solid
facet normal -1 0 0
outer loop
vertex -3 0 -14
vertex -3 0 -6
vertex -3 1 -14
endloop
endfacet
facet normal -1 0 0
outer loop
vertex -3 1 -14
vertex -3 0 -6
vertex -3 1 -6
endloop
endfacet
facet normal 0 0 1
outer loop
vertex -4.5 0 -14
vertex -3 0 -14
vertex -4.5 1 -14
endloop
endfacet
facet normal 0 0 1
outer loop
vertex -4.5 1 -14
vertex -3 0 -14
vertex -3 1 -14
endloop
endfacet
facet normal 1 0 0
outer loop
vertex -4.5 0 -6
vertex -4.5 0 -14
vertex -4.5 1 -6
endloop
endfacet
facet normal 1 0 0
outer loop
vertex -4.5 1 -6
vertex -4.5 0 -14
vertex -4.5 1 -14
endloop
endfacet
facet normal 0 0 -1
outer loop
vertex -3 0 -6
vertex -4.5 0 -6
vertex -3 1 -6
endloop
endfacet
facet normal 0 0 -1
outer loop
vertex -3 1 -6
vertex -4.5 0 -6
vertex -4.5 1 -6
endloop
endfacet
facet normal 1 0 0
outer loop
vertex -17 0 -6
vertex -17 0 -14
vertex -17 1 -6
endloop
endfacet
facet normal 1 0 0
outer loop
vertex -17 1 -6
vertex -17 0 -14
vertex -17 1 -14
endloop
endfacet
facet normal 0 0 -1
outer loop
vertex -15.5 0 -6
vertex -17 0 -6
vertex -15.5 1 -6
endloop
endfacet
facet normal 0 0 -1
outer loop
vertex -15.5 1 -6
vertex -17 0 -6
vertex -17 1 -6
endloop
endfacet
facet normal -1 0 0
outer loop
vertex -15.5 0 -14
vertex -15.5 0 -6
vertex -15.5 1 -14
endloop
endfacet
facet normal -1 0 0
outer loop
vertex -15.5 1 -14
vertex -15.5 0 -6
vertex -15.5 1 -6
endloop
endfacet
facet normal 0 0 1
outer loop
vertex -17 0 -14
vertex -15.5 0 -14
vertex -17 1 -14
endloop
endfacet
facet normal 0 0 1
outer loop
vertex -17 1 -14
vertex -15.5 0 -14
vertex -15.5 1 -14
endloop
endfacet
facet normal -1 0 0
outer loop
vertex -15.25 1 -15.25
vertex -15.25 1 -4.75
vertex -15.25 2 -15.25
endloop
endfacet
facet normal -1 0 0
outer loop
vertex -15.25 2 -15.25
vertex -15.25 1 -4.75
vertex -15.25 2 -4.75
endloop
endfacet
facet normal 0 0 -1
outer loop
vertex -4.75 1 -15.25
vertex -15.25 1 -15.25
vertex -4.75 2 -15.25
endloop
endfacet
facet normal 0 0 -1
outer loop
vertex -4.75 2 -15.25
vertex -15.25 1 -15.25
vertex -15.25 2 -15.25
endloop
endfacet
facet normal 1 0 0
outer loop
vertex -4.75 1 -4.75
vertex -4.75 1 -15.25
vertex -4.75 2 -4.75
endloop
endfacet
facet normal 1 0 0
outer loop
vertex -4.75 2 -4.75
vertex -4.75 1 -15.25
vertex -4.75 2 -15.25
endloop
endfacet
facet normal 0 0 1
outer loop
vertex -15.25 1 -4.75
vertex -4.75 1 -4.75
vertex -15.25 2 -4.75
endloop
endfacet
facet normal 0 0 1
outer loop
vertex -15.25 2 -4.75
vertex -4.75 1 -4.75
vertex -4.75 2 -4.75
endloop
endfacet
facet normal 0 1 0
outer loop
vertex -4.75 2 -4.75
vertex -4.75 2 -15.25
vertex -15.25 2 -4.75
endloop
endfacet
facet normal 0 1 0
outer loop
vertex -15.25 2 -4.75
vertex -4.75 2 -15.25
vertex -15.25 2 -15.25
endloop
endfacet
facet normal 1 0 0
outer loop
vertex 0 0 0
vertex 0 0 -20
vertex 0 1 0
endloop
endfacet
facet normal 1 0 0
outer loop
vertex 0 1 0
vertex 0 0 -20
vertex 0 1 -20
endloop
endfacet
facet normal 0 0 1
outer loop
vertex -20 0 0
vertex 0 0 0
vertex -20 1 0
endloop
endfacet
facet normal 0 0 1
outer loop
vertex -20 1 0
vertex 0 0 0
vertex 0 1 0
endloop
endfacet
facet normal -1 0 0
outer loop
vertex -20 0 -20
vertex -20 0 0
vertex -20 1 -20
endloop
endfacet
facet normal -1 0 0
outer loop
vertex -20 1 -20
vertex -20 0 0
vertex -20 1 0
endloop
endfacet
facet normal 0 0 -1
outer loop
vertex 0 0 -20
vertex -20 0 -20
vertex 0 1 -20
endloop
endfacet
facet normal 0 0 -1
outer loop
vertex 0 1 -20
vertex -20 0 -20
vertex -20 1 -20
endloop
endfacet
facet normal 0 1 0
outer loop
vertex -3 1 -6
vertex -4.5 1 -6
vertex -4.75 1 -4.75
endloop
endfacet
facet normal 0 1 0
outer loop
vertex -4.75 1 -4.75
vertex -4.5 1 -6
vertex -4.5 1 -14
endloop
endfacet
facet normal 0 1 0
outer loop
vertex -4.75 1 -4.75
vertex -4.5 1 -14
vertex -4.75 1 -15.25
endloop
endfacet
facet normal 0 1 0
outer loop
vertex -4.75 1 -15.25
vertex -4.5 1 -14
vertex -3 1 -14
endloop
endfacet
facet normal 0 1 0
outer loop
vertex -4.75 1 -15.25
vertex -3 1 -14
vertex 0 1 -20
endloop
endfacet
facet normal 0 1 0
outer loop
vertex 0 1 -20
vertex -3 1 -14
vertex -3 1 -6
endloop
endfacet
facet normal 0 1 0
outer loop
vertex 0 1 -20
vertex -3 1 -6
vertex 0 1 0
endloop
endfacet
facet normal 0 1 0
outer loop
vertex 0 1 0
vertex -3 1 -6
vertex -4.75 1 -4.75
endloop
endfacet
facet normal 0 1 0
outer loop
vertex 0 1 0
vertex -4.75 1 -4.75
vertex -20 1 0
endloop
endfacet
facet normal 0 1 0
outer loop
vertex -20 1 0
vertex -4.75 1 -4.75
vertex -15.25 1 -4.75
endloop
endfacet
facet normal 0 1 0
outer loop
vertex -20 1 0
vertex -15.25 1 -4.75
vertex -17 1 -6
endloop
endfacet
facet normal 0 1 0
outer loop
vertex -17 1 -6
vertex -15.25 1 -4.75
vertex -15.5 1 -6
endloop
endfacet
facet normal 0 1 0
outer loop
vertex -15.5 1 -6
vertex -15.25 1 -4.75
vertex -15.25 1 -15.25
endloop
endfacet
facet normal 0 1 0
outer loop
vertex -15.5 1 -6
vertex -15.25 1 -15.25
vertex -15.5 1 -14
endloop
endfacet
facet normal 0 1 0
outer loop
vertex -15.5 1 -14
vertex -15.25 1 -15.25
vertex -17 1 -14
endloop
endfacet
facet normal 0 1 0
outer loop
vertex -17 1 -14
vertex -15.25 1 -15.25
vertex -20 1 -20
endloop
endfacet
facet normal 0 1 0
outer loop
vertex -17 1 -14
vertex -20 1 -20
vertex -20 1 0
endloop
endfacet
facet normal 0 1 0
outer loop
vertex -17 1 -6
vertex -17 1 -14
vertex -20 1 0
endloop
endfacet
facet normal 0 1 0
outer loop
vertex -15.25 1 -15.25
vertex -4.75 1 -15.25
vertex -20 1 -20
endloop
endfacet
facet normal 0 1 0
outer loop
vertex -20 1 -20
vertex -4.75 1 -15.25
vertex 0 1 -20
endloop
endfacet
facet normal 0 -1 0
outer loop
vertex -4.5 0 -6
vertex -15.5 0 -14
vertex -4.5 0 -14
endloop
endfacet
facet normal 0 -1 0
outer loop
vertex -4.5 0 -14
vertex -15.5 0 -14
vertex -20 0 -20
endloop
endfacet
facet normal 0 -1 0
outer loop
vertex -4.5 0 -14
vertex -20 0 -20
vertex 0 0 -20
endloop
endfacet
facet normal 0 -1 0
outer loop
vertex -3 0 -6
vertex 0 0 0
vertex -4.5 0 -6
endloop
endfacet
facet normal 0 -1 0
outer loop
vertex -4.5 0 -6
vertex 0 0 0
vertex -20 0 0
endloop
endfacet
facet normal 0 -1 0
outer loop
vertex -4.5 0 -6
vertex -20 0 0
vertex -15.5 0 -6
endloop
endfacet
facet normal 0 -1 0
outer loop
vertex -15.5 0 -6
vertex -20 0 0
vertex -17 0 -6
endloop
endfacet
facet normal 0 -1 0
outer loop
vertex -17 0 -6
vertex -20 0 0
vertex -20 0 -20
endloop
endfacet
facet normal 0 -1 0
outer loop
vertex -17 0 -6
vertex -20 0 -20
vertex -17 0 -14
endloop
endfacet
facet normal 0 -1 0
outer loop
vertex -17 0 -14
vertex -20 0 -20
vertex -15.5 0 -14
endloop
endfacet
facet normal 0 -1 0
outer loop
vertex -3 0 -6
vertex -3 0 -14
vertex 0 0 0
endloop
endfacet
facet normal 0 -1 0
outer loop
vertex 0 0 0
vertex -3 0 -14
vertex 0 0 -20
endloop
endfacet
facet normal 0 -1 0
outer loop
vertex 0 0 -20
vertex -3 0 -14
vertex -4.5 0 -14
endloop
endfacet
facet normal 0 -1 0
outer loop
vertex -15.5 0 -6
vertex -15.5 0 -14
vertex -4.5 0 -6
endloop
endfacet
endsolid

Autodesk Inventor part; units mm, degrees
ref_plane "YZ Plane" through (0, 0, 0) normal (1, 0, 0) x (0, 1, 0)
ref_plane "XZ Plane" through (0, 0, 0) normal (0, 1, 0) x (-1, 0, 0)
ref_plane "XY Plane" through (0, 0, 0) normal (0, 0, 1) x (1, 0, 0)
sketch "Sketch1" plane through (0, 0, 0) normal (0, 1, 0) x (-1, 0, 0)
  line L0 (0, 0) -> (20, 0)
  line L1 (20, 0) -> (20, -20)
  line L2 (20, -20) -> (0, -20)
  line L3 (0, -20) -> (0, 0)
  dimension "d0" = 20
  dimension "d1" = 20
extrude "Extrusion1" add sketch "Sketch1" along normal blind 1
sketch "Sketch2" plane through (0, 1, 0) normal (0, 1, 0) x (1, 0, 0)
  line L0 (-15.5, 4.5) -> (-4.5, 4.5) construction
  line L1 (-4.5, 4.5) -> (-4.5, 15.5) construction
  line L2 (-4.5, 15.5) -> (-15.5, 15.5) construction
  line L3 (-15.5, 15.5) -> (-15.5, 4.5) construction
  line L4 (0, 0) -> (0, 20) projected
  line L5 (0, 20) -> (-20, 20) projected
  line L6 (-15.25, 15.25) -> (-4.75, 15.25)
  line L7 (-4.75, 15.25) -> (-4.75, 4.75)
  line L8 (-4.75, 4.75) -> (-15.25, 4.75)
  line L9 (-15.25, 4.75) -> (-15.25, 15.25)
  dimension "d4" = 11
  dimension "d5" = 11
  dimension "d6" = 4.5
  dimension "d7" = 4.5
  dimension "d20" = 0.25
extrude "Extrusion2" add sketch "Sketch2" along normal blind 1
sketch "Sketch3" plane through (0, 1, 0) normal (0, 1, 0) x (1, 0, 0)
  line L0 (-4.5, 14) -> (-3, 14)
  line L1 (-3, 14) -> (-3, 6)
  line L2 (-3, 6) -> (-4.5, 6)
  line L3 (-4.5, 6) -> (-4.5, 14)
  line L4 (-4.5, 4.5) -> (-4.5, 15.5) projected
  line L5 (-4.5, 15.5) -> (-15.5, 15.5) projected
  line L6 (-15.5, 14) -> (-17, 14)
  line L7 (-17, 14) -> (-17, 6)
  line L8 (-17, 6) -> (-15.5, 6)
  line L9 (-15.5, 6) -> (-15.5, 14)
  line L10 (-15.5, 15.5) -> (-15.5, 4.5) projected
  line L11 (-15.5, 4.5) -> (-4.5, 4.5) projected
  point P0 (0, 0)
  dimension "d10" = 8
  dimension "d11" = 1.5
  dimension "d12" = 0
  dimension "d13" = 1.5
  dimension "d14" = 8
  dimension "d15" = 1.5
  dimension "d16" = 0
  dimension "d17" = 1.5
extrude "Extrusion3" cut sketch "Sketch3" against normal through all contours L0 L1 L2 L3 | L9 L8 L7 L6
properties part number "Test_Button_Backboard"
